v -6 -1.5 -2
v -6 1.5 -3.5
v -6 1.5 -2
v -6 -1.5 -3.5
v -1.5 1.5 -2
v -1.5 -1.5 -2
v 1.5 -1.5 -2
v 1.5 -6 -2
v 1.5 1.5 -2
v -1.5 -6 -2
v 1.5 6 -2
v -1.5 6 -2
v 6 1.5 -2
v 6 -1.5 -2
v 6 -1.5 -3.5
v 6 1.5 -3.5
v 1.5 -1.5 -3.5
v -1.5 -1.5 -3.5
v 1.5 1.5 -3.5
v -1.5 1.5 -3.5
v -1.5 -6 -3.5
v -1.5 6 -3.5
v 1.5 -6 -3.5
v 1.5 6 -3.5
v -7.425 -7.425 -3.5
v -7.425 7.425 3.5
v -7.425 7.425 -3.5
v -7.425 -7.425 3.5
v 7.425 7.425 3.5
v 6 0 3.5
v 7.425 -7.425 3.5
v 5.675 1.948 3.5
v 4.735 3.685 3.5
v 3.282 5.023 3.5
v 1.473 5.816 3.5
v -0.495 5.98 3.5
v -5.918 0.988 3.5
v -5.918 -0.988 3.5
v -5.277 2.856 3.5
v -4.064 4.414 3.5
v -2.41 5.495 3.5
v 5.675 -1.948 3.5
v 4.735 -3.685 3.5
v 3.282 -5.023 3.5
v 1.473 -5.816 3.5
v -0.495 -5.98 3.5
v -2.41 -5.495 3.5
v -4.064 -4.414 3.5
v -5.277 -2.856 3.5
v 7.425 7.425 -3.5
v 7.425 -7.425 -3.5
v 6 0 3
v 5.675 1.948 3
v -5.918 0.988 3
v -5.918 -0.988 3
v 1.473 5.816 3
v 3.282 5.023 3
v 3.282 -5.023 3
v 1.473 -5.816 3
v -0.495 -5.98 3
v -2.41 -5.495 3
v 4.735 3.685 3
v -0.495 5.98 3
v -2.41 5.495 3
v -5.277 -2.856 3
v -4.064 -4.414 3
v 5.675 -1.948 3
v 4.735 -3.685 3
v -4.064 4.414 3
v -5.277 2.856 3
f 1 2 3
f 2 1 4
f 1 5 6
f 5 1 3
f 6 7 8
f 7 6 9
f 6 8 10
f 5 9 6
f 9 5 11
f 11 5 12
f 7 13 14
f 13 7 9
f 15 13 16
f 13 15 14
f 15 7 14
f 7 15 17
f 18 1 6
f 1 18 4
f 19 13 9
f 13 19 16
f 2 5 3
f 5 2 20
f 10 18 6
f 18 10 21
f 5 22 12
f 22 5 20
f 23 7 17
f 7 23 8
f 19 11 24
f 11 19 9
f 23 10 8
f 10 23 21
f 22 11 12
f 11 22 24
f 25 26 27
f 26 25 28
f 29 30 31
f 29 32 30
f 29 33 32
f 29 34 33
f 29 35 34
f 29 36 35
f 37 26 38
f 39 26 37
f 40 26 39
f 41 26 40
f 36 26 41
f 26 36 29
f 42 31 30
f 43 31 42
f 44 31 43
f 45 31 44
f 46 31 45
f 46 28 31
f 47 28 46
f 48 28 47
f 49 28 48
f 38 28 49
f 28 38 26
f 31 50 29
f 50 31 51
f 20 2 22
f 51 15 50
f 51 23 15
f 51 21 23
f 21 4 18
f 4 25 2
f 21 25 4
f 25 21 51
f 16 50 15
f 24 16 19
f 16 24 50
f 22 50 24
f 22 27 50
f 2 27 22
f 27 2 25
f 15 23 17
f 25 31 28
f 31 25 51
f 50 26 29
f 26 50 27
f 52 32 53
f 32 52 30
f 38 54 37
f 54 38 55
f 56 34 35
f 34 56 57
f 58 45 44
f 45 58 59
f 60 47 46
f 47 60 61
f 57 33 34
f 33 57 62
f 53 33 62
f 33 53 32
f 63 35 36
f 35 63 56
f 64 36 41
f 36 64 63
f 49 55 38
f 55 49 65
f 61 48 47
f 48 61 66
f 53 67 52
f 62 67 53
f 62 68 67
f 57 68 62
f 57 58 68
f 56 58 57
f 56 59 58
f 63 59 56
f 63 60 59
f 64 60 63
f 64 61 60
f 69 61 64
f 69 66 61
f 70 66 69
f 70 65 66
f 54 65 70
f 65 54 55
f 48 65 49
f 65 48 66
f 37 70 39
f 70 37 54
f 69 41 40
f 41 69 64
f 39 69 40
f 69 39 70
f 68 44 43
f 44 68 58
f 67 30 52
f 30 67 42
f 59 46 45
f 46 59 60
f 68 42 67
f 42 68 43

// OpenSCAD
$fieldWidth=15;
$fieldHeight=3;
$borderWidth=3;
$borderHeight=2;
$edgeWidth=1;

difference() {
cube([$fieldWidth-0.15, $fieldWidth-0.15, $fieldHeight*2+1], center=true);
translate([0, 0, $fieldHeight/2+0.5+1])
cylinder(d=$fieldWidth*0.8, h=$fieldHeight-1);
translate([0, 0, -$fieldHeight/2-0.5-1]) {
cube([$fieldWidth*0.8, $fieldWidth/5, $fieldHeight-1], center=true);
cube([$fieldWidth/5, $fieldWidth*0.8, $fieldHeight-1], center=true);
}
}
